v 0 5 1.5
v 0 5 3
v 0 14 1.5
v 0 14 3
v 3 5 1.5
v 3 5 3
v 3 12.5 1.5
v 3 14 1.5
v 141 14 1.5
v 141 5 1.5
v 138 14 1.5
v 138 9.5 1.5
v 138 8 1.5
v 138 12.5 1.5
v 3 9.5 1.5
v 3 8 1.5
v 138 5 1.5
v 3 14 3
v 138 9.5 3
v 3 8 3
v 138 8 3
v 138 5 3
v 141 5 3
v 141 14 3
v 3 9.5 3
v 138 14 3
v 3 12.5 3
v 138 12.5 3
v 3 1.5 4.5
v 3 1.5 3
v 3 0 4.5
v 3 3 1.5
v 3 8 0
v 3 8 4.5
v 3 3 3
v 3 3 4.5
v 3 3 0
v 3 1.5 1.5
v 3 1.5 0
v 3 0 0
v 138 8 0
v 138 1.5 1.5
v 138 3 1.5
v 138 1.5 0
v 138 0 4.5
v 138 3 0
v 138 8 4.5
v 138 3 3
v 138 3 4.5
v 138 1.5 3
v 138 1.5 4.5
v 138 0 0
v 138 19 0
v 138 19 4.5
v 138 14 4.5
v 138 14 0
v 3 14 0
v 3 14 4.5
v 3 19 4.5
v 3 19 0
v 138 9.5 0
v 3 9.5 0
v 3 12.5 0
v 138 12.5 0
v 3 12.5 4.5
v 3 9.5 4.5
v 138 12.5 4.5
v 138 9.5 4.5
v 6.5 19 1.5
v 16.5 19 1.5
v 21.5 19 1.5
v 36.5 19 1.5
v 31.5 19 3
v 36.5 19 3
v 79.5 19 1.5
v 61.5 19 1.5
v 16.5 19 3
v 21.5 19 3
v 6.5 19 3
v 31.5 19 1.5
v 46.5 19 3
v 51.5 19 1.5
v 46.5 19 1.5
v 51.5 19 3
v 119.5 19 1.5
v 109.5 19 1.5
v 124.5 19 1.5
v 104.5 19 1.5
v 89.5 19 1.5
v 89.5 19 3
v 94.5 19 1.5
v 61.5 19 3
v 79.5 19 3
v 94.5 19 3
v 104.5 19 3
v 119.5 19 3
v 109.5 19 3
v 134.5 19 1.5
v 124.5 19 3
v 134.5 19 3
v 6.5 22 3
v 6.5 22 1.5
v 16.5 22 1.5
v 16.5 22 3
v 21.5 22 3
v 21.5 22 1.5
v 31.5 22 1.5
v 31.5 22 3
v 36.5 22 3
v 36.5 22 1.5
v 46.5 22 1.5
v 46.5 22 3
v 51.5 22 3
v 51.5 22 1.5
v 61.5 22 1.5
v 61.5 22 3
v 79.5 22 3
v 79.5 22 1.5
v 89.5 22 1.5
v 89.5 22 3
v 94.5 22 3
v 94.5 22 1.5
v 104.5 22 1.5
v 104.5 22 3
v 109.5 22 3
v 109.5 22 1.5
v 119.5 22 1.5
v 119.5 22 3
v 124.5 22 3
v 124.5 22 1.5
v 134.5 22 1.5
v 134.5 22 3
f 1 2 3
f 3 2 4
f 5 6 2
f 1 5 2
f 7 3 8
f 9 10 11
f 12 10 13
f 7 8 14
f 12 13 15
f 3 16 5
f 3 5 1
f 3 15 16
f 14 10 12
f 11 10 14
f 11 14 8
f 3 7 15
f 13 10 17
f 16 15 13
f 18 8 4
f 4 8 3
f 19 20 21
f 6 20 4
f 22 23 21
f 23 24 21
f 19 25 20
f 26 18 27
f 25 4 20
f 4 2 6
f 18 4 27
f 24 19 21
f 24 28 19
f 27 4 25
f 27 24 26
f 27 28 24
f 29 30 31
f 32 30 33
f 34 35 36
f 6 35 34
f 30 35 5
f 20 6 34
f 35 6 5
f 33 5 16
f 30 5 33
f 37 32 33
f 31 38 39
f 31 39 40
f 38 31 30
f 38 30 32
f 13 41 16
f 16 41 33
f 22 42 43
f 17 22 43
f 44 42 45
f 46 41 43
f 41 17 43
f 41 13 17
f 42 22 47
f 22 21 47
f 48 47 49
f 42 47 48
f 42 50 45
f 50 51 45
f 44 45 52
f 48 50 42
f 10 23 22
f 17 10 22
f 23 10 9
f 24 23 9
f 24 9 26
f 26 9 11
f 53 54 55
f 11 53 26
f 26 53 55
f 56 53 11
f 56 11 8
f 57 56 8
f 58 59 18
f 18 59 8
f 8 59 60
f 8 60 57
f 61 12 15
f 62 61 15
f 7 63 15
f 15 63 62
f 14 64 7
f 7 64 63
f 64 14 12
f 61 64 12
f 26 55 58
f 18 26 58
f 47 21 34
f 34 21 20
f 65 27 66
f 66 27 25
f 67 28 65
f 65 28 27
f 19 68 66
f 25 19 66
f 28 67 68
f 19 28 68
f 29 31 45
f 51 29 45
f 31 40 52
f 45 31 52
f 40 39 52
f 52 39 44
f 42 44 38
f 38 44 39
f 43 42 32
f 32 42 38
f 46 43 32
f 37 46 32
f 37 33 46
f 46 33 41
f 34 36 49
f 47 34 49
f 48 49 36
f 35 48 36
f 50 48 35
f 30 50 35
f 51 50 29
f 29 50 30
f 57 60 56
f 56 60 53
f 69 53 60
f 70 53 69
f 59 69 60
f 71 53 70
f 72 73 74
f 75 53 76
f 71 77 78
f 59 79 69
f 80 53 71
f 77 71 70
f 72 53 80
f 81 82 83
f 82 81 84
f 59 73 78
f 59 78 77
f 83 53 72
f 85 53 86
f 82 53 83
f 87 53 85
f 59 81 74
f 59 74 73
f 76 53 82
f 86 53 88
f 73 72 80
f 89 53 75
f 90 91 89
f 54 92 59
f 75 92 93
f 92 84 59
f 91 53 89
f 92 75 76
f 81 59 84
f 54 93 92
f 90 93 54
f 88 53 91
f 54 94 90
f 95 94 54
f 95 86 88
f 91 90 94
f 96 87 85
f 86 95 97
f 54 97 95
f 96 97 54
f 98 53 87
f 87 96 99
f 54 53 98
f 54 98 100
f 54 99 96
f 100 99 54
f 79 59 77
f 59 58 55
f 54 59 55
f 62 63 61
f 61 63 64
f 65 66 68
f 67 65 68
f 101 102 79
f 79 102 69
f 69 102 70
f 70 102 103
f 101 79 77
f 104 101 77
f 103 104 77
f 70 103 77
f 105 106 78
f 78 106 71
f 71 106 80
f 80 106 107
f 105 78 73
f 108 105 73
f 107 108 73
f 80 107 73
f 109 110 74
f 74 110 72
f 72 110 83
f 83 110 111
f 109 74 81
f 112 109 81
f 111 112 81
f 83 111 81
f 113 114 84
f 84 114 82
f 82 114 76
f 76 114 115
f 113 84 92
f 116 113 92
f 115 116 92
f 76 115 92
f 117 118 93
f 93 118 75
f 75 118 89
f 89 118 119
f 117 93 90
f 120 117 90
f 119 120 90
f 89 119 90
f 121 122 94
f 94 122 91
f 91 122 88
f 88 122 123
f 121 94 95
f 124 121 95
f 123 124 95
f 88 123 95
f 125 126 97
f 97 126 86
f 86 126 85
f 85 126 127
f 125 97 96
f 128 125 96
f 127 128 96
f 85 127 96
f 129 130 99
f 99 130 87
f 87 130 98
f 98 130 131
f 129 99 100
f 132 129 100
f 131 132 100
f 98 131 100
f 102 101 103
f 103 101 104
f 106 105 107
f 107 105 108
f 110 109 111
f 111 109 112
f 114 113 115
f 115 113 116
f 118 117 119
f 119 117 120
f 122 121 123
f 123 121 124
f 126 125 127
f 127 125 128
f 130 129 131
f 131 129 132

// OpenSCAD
board = 138;
edge = 1.5;

depth = 3 * edge;
width = board + 2 * edge;

groove = 1.5;
faceSpace = 5;
mountSpace = 3;
pcbSpace = 5;

notchSpacing = 5;
notchWidth = 10;
notchHeight = 3;

height =
	edge +
	groove +
	faceSpace +
	groove +
	mountSpace +
	groove +
	pcbSpace +
	notchHeight;

faceTop = edge;
mountTop = faceTop + groove + faceSpace;
pcbTop = mountTop + groove + mountSpace;
baseTop = pcbTop + groove + pcbSpace;

notchCount = 8;
notchGap = board - notchCount * (notchSpacing + notchWidth);
notch1Left = edge + notchSpacing;
notch2Left = notch1Left + notchSpacing + notchWidth;
notch3Left = notch2Left + notchSpacing + notchWidth;
notch4Left = notch3Left + notchSpacing + notchWidth;
notch5Left = notch4Left + notchGap + notchWidth;
notch6Left = notch5Left + notchSpacing + notchWidth;
notch7Left = notch6Left + notchSpacing + notchWidth;
notch8Left = notch7Left + notchSpacing + notchWidth;

module hole(x, y, z, cx, cy, cz)
{
	translate([x, y, z]) cube([cx, cy, cz]);
}

module grooveHole(y)
{
	hole(edge, y, 0, board, groove, edge);
	hole(edge, y, 2 * edge, board, groove, edge);
}

module notchHole(x, cx)
{
	hole(x, baseTop, edge, cx, notchHeight, edge);
}

module sideNotch(x)
{
	hole(x, 0, 0, 2 * edge, height, edge);
	hole(x, 0, 2 * edge, 2 * edge, height, edge);
	hole(x, 0, edge, 2 * edge, 5, edge);
	hole(x, 14, edge, 2 * edge, 5, edge);
}

difference()
{
	cube([width, height, depth]);

	grooveHole(faceTop);
	grooveHole(mountTop);
	grooveHole(pcbTop);

	hole(0, baseTop, 0, width, notchHeight, edge);
	hole(0, baseTop, 2 * edge, width, notchHeight, edge);
	notchHole(0, notch1Left);
	notchHole(notch1Left + notchWidth, notchSpacing);
	notchHole(notch2Left + notchWidth, notchSpacing);
	notchHole(notch3Left + notchWidth, notchSpacing);
	notchHole(notch4Left + notchWidth, notchGap);
	notchHole(notch5Left + notchWidth, notchSpacing);
	notchHole(notch6Left + notchWidth, notchSpacing);
	notchHole(notch7Left + notchWidth, notchSpacing);
	notchHole(notch8Left + notchWidth, notchSpacing + edge);

	sideNotch(0);
	sideNotch(board);
}
